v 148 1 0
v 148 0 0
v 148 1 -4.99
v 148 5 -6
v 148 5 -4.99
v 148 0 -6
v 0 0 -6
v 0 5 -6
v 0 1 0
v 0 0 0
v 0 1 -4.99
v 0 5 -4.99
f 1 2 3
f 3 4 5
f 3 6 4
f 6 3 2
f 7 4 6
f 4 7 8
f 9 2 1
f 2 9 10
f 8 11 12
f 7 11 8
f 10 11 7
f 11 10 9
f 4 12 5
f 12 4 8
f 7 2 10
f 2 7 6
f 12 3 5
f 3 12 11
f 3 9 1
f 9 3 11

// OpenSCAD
// LED_Channel.stl  -  Store Versile room frame (Rev C)
// Quantity: 2   Filament: White (e.g. PLA Basic Jade White / Matte Ivory White)
// Print: layer 0.2 mm, infill 15%, 2 walls, brim 0 mm, NO supports
// Orientation: flip  (upside down)
// Notes: Optional, print 2. Hides the LED strip under the top front edge.
// The library draws parts with their front toward +Y; mirror([0,1,0]) makes the real
// part face the viewer correctly (see build.py). Edit dimensions in versile_parts.scad.
use <../versile_parts.scad>

rotate([180, 0, 0]) mirror([0, 1, 0]) led_channel();
